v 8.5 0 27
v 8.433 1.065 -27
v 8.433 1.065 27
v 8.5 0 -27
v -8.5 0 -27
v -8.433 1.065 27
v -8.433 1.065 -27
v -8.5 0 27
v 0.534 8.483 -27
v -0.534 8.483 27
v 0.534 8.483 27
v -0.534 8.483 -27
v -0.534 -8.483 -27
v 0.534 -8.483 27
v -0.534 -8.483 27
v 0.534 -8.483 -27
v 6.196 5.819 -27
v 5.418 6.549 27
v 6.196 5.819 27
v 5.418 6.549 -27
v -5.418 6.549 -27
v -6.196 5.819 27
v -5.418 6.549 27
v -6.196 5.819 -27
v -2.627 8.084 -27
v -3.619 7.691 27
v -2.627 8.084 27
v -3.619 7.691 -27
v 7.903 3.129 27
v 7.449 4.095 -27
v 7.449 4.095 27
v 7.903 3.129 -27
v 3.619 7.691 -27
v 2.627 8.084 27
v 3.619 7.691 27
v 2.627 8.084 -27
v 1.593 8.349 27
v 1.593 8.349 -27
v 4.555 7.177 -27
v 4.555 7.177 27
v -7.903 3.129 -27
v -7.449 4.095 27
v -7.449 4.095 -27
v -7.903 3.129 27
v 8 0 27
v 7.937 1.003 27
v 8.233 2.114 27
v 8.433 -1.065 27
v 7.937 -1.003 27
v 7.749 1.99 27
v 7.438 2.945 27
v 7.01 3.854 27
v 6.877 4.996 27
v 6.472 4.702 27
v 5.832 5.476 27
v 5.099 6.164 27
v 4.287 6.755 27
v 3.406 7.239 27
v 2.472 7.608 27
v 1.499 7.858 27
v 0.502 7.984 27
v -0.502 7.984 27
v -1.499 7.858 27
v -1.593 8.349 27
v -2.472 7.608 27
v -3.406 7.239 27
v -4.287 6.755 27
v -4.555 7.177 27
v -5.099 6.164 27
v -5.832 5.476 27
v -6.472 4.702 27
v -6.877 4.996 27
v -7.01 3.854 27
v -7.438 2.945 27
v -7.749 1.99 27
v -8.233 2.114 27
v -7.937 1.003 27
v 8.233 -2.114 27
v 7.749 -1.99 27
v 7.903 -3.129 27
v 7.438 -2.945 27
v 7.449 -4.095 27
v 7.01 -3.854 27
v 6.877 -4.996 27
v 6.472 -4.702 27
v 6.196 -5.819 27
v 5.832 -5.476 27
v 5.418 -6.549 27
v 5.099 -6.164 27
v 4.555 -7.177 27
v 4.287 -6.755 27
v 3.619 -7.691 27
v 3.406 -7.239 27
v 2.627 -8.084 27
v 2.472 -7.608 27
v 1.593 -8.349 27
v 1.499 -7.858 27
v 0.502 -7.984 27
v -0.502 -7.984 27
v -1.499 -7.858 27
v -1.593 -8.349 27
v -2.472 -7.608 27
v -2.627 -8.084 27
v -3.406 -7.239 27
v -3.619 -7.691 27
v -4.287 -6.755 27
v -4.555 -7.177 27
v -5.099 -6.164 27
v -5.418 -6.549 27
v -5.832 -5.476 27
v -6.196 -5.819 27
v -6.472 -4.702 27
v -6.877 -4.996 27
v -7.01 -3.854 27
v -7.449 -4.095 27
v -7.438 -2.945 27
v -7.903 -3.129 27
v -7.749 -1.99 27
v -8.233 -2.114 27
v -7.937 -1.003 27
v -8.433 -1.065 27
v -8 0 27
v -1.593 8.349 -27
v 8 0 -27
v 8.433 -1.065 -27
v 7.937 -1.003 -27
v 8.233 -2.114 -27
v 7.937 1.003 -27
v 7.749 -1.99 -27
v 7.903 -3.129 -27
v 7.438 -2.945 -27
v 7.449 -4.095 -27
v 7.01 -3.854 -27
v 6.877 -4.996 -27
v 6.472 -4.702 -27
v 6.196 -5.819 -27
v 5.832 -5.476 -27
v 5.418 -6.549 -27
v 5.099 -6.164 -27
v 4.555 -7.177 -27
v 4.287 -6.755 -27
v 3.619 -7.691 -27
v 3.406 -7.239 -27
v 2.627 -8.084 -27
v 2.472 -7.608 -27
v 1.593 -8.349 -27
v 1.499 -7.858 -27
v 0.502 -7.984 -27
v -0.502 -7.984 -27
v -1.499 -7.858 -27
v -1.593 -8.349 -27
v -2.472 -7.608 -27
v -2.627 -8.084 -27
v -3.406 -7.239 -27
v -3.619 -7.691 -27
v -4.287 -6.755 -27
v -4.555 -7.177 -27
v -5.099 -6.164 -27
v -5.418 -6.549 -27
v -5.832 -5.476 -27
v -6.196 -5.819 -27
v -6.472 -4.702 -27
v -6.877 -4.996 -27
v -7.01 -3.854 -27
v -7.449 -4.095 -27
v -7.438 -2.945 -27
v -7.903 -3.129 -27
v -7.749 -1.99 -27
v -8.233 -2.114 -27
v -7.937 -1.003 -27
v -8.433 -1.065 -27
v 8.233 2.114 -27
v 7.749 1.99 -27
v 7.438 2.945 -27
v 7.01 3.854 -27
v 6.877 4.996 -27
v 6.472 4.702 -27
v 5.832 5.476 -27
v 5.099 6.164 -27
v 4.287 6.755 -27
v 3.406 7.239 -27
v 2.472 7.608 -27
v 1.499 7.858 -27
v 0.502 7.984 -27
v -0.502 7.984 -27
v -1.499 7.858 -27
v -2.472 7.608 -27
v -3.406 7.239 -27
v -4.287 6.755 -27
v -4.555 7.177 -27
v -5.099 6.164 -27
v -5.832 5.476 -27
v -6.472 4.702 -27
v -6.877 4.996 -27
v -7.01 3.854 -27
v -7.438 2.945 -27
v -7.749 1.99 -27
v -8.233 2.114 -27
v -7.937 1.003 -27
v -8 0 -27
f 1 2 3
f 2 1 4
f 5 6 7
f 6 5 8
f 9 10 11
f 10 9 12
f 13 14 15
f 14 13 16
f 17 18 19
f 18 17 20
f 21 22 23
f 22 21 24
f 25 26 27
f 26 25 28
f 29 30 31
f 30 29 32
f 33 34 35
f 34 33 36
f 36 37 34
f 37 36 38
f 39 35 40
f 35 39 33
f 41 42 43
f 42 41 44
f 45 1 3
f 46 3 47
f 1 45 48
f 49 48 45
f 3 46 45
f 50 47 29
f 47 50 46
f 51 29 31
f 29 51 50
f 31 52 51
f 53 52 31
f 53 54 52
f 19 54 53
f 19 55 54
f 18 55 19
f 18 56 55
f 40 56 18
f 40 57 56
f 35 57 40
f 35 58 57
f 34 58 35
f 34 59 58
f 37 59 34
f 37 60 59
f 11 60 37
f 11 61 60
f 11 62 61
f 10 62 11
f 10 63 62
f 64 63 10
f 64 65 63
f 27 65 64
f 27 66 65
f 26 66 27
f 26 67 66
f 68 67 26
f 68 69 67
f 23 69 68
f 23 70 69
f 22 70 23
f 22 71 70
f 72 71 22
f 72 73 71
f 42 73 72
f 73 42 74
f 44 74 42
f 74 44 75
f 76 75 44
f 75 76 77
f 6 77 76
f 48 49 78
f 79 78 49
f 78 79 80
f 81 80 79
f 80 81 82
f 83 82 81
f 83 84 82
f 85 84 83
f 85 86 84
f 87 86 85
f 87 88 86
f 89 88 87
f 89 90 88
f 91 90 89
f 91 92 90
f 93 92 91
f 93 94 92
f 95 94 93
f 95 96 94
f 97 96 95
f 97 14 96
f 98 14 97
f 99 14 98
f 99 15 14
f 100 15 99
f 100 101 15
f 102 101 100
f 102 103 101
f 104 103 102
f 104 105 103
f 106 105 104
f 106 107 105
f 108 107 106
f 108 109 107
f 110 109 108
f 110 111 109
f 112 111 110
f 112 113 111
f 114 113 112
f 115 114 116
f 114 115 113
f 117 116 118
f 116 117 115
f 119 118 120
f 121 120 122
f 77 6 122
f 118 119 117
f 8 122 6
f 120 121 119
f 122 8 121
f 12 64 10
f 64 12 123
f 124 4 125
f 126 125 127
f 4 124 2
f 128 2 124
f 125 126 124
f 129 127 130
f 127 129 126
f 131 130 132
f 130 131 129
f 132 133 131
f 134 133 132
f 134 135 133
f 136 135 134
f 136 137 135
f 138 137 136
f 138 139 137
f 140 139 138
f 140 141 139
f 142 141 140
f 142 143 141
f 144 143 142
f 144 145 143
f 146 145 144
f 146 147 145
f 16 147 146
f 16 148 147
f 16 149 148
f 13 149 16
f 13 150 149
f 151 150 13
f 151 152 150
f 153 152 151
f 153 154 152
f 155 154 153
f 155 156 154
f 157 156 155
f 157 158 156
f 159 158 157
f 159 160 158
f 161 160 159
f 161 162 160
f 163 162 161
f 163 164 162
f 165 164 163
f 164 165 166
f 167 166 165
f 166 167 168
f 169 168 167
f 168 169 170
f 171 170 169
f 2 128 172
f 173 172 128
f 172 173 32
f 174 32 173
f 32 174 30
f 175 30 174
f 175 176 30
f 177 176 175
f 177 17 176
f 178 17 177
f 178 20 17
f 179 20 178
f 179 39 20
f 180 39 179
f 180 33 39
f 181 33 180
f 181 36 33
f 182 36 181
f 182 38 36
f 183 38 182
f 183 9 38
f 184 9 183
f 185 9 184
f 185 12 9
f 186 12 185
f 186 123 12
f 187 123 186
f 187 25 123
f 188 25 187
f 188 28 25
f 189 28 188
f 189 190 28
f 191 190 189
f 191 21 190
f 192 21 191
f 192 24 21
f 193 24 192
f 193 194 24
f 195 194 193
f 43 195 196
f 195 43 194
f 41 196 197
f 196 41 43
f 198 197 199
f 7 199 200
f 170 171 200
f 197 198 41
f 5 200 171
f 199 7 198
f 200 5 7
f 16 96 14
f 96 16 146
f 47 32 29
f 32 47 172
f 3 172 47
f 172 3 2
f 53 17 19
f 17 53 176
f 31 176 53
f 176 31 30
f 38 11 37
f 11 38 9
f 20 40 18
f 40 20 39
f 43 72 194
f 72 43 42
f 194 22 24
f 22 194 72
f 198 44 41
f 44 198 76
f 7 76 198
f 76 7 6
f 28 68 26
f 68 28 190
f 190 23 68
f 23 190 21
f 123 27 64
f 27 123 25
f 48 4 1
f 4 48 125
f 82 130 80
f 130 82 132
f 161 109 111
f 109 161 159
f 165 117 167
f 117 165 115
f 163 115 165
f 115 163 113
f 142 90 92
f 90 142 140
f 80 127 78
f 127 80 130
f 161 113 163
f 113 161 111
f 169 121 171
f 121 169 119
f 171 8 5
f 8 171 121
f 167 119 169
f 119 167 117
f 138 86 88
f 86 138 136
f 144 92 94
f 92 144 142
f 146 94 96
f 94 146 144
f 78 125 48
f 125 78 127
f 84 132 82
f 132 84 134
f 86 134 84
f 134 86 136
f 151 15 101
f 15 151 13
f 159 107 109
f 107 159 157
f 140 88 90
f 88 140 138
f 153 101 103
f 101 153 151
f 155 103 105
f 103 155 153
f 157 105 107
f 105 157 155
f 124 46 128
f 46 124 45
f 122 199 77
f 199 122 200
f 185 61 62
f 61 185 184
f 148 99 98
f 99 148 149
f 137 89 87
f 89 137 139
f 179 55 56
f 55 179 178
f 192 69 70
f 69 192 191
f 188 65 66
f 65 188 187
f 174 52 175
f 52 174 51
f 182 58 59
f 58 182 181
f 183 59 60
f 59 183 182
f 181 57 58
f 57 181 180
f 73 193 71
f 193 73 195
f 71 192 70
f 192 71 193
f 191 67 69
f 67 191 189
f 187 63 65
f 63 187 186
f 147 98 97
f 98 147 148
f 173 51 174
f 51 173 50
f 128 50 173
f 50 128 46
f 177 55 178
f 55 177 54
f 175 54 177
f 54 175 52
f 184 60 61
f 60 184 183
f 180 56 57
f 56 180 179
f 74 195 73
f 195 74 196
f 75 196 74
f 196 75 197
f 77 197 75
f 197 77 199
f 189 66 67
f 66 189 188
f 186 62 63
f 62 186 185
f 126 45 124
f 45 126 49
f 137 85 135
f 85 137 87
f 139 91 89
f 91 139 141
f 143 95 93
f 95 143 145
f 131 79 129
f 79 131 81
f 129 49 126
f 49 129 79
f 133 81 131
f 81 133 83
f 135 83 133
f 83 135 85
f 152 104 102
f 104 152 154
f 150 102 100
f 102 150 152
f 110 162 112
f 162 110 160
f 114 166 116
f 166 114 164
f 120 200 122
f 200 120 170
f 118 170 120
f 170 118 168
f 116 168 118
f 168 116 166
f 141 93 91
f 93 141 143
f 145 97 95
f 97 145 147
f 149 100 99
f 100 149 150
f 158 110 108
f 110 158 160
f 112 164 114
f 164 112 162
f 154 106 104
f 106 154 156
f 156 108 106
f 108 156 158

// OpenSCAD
$fn = 50;


difference() {
	union() {
		translate(v = [0, 0, -27.0000000000]) {
			cylinder(h = 54, r = 8.5000000000);
		}
	}
	union() {
		translate(v = [0, 0, -100.0000000000]) {
			cylinder(h = 200, r = 8);
		}
	}
}
